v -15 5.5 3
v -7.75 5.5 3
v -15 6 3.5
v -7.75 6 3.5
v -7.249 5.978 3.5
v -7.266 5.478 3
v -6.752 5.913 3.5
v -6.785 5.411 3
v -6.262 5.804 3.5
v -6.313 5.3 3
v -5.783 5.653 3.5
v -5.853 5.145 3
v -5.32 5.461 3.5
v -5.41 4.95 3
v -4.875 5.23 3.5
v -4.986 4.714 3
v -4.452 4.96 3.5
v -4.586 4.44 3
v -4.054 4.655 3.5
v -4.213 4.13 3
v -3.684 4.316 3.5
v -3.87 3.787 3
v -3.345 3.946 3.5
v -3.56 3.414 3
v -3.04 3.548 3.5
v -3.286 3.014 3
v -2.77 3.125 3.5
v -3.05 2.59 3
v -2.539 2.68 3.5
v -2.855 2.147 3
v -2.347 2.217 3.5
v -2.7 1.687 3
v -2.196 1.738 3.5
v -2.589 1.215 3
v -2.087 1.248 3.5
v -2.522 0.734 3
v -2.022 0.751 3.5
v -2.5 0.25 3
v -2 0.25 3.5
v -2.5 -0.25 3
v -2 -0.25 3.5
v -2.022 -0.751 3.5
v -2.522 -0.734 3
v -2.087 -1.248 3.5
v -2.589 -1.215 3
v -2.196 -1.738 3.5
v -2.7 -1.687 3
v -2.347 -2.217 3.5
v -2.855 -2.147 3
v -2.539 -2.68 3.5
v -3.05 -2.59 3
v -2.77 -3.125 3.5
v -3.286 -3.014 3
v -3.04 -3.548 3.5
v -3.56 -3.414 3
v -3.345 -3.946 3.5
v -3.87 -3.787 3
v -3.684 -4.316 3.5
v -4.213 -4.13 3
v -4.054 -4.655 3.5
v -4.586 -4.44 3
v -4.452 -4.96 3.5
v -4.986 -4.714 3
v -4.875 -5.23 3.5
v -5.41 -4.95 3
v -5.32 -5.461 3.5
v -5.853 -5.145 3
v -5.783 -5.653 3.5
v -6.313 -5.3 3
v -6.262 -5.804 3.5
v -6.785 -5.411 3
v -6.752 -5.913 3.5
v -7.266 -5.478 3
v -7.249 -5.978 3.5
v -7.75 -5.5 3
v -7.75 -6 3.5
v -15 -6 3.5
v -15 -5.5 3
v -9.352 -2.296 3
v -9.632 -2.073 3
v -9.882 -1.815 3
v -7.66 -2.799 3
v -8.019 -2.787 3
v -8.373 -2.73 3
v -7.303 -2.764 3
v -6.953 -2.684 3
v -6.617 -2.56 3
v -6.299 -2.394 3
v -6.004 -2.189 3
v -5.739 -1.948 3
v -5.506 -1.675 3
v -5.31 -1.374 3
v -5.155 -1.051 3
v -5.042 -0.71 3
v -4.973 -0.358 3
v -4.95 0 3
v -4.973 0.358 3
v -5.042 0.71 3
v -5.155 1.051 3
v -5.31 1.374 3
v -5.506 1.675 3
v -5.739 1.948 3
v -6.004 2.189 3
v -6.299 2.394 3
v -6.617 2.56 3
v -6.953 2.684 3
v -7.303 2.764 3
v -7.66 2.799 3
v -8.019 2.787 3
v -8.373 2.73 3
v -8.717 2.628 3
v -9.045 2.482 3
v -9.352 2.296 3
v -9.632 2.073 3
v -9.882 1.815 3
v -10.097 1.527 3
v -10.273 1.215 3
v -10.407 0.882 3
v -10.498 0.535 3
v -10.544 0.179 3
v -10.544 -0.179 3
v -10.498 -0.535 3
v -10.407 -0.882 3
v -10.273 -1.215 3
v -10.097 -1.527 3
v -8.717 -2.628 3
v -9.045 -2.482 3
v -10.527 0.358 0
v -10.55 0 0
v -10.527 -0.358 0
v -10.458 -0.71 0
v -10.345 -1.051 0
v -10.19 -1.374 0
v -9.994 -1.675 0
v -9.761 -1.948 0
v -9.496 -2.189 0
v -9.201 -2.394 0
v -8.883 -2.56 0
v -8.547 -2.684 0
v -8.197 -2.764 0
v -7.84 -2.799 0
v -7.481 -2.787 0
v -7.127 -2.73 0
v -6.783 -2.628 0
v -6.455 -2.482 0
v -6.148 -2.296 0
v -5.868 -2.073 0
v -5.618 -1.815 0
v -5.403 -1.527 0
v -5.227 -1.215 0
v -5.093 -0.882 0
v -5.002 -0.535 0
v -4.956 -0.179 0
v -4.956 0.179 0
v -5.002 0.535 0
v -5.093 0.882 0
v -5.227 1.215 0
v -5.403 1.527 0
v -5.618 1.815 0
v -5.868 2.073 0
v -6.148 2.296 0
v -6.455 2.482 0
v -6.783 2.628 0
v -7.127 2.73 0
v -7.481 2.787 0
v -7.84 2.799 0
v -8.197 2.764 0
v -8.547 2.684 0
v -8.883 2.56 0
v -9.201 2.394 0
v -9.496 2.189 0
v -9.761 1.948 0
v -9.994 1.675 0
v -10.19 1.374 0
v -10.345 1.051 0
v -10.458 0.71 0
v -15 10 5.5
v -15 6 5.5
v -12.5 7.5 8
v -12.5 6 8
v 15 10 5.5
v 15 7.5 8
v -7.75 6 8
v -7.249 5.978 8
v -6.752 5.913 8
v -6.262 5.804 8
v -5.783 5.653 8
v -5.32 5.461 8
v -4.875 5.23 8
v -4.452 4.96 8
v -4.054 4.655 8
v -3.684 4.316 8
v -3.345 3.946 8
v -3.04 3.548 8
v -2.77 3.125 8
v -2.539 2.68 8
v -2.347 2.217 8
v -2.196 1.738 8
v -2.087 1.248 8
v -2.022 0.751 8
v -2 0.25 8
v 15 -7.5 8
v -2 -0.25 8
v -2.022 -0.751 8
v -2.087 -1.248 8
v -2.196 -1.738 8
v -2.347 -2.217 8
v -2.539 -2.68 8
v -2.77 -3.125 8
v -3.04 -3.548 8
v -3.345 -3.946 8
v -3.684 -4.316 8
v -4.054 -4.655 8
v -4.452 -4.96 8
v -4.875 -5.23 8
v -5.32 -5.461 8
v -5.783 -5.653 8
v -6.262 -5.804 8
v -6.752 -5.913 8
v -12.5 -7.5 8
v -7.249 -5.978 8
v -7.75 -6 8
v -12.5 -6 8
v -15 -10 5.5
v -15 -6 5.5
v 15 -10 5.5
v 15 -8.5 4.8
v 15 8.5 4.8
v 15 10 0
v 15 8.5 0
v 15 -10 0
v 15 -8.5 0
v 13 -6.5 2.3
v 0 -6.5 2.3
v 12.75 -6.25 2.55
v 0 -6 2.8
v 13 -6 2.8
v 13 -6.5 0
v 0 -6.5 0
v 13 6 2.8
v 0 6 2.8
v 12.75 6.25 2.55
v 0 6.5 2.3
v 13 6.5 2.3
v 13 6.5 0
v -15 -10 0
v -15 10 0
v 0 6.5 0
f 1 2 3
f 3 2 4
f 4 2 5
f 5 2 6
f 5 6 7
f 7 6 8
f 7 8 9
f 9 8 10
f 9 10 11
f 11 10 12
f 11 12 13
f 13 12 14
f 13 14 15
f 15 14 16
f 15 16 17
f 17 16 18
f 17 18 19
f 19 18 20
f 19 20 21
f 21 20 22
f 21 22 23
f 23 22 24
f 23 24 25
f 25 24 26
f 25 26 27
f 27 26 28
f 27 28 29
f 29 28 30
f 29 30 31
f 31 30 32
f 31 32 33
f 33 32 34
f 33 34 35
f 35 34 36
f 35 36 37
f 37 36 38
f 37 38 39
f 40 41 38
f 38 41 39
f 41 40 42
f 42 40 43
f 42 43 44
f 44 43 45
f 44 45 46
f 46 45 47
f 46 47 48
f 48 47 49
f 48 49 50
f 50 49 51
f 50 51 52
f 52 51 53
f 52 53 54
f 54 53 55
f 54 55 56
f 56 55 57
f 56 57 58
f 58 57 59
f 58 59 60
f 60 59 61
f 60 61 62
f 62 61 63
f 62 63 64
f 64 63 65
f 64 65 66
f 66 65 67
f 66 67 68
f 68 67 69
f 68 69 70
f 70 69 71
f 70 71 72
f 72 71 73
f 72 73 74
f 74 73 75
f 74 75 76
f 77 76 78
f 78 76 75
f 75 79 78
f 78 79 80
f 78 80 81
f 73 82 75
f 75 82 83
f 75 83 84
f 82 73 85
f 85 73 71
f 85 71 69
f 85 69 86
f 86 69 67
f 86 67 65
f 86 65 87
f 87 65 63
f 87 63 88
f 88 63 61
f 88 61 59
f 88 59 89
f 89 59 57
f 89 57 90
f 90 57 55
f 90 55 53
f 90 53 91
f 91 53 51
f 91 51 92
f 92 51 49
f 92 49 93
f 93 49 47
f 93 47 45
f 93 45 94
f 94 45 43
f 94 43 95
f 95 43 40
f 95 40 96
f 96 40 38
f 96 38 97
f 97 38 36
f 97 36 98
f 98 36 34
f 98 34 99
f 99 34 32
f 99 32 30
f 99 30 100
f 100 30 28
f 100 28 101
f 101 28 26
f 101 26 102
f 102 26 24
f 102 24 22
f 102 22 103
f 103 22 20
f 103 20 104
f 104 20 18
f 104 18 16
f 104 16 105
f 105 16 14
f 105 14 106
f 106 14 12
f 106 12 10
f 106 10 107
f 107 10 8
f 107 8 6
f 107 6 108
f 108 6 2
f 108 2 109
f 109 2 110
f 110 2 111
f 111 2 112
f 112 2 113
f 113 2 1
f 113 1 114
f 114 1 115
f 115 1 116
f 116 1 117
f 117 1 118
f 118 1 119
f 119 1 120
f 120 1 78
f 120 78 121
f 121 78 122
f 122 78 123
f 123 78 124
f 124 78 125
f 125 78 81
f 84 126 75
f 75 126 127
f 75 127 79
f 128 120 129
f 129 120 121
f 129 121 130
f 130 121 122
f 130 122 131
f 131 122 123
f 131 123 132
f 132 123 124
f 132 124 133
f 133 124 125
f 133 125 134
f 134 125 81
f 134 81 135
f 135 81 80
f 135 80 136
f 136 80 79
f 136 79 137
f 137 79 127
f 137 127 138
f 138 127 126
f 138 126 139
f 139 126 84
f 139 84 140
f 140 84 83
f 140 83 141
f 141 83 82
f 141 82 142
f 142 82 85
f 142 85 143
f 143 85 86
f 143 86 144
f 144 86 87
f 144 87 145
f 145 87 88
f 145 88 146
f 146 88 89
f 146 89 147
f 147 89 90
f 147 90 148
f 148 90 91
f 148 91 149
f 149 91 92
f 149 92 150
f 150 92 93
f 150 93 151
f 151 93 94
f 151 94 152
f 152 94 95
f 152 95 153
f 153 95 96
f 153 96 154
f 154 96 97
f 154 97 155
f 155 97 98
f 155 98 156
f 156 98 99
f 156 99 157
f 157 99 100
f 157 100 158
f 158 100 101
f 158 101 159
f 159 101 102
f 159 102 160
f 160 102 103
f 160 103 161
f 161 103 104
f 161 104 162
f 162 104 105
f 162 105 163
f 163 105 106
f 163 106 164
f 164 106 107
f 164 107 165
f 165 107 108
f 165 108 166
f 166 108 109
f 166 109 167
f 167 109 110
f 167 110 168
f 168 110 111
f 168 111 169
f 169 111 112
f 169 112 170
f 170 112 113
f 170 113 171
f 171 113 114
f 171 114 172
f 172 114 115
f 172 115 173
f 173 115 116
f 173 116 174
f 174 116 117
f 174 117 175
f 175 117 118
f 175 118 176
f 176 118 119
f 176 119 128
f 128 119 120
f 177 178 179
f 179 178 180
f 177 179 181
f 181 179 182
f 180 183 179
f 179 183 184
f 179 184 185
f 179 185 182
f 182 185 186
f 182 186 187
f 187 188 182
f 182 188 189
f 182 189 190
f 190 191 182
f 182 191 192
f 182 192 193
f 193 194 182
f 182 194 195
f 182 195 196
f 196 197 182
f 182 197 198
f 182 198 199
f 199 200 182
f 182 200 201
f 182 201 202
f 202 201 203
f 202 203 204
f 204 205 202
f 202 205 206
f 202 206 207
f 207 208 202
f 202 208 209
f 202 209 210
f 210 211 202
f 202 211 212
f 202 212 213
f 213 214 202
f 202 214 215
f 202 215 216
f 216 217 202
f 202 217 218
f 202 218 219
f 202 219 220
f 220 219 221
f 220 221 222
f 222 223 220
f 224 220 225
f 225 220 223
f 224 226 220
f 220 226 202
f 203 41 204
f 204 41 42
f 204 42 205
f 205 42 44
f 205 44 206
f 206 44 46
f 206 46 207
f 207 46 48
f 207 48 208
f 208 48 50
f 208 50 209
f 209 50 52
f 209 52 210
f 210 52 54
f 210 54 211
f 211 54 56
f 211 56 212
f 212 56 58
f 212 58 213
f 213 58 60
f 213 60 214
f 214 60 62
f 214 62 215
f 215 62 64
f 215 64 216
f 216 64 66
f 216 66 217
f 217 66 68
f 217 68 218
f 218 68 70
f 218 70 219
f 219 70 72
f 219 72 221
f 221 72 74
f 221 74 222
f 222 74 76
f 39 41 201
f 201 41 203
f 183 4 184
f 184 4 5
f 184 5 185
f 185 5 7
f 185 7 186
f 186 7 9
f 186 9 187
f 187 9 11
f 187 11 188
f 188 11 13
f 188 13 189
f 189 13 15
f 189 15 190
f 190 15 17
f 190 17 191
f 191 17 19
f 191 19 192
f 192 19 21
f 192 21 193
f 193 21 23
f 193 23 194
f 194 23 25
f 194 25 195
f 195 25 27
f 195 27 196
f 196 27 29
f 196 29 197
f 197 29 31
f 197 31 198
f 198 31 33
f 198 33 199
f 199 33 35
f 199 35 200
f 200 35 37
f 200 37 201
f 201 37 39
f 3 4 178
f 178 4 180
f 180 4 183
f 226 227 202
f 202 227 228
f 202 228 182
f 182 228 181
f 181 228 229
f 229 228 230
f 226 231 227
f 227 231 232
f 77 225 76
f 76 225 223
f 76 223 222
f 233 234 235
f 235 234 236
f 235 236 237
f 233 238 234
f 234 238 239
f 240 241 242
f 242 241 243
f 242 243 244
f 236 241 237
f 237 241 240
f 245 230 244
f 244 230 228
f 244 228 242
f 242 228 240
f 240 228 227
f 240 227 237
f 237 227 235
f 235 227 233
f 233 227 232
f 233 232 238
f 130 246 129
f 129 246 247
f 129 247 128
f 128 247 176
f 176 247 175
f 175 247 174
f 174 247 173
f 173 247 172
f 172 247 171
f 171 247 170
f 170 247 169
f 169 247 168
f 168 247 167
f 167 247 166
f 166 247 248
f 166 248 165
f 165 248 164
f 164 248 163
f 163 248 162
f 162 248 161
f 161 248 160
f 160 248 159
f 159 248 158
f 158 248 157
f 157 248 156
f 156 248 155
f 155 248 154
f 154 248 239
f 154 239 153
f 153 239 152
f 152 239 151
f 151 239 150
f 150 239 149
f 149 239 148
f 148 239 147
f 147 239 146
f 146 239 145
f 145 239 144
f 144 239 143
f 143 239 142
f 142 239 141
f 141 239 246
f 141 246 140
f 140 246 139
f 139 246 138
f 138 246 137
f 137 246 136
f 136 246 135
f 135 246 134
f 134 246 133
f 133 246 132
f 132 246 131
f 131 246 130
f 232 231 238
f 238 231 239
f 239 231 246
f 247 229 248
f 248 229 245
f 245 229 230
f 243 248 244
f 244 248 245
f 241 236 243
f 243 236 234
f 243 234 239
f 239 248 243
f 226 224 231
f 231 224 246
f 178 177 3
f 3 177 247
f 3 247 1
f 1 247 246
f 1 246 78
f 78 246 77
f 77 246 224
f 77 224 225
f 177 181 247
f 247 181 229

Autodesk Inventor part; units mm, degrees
ref_plane "YZ Plane" through (0, 0, 0) normal (1, 0, 0) x (0, 1, 0)
ref_plane "XZ Plane" through (0, 0, 0) normal (0, 1, 0) x (-1, 0, 0)
ref_plane "XY Plane" through (0, 0, 0) normal (0, 0, 1) x (1, 0, 0)
sketch "Sketch1" plane through (0, 0, 0) normal (0, 0, 1) x (1, 0, 0)
  line L0 (-15, -10) -> (15, -10)
  line L1 (15, -10) -> (15, 10)
  line L2 (15, 10) -> (-15, 10)
  line L3 (-15, 10) -> (-15, -10)
  line L4 (-15, -10) -> (15, 10) construction
  line L5 (15, -10) -> (-15, 10) construction
  point P0 (0, 0)
  dimension "d0" = 20
  dimension "d1" = 30
extrude "Extrusion1" add sketch "Sketch1" along normal blind 8
sketch "Sketch2" plane through (15, -10, 0) normal (1, 0, 0) x (0, 0, -1)
  line L0 (-9.6, 10) -> (1.6, 10) projected
  line L1 (0, 0) -> (0, 20) projected
  line L2 (0, 3.5) -> (-2.8, 3.5)
  line L3 (-2.8, 3.5) -> (-2.8, 16.5)
  line L4 (-2.8, 16.5) -> (0, 16.5)
  line L5 (0, 16.5) -> (0, 3.5)
  point P0 (0, 10)
  point P1 (0, 16.5)
  dimension "d4" = 2.8
  dimension "d5" = 13
  dimension "d6" = 6.5
extrude "Extrusion2" cut sketch "Sketch2" against normal blind 15
chamfer "Chamfer1" distance 2 angle 45 3 edges at (15, 0, 2.8) (15, 6.5, 1.4) (15, -6.5, 1.4)
chamfer "Chamfer2" distance 0.5 angle 45 2 edges at (6.5, 6.5, 2.8) (6.5, -6.5, 2.8)
sketch "Sketch3" plane through (0, 0, 8) normal (0, 0, 1) x (1, 0, 0)
  line L0 (-21, 0) -> (21, 0) projected
  line L1 (-2, -6) -> (-15, -6)
  line L2 (-15, -6) -> (-15, 6)
  line L3 (-15, 6) -> (-2, 6)
  line L4 (-2, 6) -> (-2, -6)
  line L5 (-2, -6) -> (-15, 6) construction
  line L6 (-15, -6) -> (-2, 6) construction
  line L7 (-15, 10) -> (-15, -10) projected
  line L8 (0, -6) -> (0, 6) projected
  point P0 (0, 0)
  point P1 (-8.5, 0)
  dimension "d15" = 2
  dimension "d16" = 12
extrude "Extrusion3" cut sketch "Sketch3" against normal blind 5
chamfer "Chamfer3" distance 2.5 angle 45 2 edges at (0, 10, 8) (0, -10, 8)
fillet "Fillet1" radius 5.75 2 edges at (-2, 6, 5.5) (-2, -6, 5.5)
chamfer "Chamfer4" distance 2.5 angle 45 2 edges at (-15, -6.75, 8) (-15, 6.75, 8)
sketch "Sketch4" plane through (0, 0, 3) normal (0, 0, 1) x (1, 0, 0)
  line L0 (-21, 0) -> (21, 0) projected
  circle A0 centre (-7.75, 0) radius 2.8
  arc A1 (-2, 0.25) -> (-7.75, 6) centre (-7.75, 0.25) ccw projected
  line L1 (-7.75, -6) -> (-15, -6) projected
  line L2 (-7.75, 6) -> (-7.75, -6) construction
  point P0 (0, 0)
  dimension "d26" = 5.6
  dimension "d27" = 0
extrude "Extrusion4" cut sketch "Sketch4" against normal blind 5
chamfer "Chamfer5" distance 0.5 angle 45 5 edges at (-3.6841, 4.3159, 3) (-11.375, 6, 3) (-2, 0, 3) (-3.6841, -4.3159, 3) (-11.375, -6, 3)
equation "\"d6\" = 0.5 * d5"
properties part number "BatteryHolderFixture_3DPrint"
